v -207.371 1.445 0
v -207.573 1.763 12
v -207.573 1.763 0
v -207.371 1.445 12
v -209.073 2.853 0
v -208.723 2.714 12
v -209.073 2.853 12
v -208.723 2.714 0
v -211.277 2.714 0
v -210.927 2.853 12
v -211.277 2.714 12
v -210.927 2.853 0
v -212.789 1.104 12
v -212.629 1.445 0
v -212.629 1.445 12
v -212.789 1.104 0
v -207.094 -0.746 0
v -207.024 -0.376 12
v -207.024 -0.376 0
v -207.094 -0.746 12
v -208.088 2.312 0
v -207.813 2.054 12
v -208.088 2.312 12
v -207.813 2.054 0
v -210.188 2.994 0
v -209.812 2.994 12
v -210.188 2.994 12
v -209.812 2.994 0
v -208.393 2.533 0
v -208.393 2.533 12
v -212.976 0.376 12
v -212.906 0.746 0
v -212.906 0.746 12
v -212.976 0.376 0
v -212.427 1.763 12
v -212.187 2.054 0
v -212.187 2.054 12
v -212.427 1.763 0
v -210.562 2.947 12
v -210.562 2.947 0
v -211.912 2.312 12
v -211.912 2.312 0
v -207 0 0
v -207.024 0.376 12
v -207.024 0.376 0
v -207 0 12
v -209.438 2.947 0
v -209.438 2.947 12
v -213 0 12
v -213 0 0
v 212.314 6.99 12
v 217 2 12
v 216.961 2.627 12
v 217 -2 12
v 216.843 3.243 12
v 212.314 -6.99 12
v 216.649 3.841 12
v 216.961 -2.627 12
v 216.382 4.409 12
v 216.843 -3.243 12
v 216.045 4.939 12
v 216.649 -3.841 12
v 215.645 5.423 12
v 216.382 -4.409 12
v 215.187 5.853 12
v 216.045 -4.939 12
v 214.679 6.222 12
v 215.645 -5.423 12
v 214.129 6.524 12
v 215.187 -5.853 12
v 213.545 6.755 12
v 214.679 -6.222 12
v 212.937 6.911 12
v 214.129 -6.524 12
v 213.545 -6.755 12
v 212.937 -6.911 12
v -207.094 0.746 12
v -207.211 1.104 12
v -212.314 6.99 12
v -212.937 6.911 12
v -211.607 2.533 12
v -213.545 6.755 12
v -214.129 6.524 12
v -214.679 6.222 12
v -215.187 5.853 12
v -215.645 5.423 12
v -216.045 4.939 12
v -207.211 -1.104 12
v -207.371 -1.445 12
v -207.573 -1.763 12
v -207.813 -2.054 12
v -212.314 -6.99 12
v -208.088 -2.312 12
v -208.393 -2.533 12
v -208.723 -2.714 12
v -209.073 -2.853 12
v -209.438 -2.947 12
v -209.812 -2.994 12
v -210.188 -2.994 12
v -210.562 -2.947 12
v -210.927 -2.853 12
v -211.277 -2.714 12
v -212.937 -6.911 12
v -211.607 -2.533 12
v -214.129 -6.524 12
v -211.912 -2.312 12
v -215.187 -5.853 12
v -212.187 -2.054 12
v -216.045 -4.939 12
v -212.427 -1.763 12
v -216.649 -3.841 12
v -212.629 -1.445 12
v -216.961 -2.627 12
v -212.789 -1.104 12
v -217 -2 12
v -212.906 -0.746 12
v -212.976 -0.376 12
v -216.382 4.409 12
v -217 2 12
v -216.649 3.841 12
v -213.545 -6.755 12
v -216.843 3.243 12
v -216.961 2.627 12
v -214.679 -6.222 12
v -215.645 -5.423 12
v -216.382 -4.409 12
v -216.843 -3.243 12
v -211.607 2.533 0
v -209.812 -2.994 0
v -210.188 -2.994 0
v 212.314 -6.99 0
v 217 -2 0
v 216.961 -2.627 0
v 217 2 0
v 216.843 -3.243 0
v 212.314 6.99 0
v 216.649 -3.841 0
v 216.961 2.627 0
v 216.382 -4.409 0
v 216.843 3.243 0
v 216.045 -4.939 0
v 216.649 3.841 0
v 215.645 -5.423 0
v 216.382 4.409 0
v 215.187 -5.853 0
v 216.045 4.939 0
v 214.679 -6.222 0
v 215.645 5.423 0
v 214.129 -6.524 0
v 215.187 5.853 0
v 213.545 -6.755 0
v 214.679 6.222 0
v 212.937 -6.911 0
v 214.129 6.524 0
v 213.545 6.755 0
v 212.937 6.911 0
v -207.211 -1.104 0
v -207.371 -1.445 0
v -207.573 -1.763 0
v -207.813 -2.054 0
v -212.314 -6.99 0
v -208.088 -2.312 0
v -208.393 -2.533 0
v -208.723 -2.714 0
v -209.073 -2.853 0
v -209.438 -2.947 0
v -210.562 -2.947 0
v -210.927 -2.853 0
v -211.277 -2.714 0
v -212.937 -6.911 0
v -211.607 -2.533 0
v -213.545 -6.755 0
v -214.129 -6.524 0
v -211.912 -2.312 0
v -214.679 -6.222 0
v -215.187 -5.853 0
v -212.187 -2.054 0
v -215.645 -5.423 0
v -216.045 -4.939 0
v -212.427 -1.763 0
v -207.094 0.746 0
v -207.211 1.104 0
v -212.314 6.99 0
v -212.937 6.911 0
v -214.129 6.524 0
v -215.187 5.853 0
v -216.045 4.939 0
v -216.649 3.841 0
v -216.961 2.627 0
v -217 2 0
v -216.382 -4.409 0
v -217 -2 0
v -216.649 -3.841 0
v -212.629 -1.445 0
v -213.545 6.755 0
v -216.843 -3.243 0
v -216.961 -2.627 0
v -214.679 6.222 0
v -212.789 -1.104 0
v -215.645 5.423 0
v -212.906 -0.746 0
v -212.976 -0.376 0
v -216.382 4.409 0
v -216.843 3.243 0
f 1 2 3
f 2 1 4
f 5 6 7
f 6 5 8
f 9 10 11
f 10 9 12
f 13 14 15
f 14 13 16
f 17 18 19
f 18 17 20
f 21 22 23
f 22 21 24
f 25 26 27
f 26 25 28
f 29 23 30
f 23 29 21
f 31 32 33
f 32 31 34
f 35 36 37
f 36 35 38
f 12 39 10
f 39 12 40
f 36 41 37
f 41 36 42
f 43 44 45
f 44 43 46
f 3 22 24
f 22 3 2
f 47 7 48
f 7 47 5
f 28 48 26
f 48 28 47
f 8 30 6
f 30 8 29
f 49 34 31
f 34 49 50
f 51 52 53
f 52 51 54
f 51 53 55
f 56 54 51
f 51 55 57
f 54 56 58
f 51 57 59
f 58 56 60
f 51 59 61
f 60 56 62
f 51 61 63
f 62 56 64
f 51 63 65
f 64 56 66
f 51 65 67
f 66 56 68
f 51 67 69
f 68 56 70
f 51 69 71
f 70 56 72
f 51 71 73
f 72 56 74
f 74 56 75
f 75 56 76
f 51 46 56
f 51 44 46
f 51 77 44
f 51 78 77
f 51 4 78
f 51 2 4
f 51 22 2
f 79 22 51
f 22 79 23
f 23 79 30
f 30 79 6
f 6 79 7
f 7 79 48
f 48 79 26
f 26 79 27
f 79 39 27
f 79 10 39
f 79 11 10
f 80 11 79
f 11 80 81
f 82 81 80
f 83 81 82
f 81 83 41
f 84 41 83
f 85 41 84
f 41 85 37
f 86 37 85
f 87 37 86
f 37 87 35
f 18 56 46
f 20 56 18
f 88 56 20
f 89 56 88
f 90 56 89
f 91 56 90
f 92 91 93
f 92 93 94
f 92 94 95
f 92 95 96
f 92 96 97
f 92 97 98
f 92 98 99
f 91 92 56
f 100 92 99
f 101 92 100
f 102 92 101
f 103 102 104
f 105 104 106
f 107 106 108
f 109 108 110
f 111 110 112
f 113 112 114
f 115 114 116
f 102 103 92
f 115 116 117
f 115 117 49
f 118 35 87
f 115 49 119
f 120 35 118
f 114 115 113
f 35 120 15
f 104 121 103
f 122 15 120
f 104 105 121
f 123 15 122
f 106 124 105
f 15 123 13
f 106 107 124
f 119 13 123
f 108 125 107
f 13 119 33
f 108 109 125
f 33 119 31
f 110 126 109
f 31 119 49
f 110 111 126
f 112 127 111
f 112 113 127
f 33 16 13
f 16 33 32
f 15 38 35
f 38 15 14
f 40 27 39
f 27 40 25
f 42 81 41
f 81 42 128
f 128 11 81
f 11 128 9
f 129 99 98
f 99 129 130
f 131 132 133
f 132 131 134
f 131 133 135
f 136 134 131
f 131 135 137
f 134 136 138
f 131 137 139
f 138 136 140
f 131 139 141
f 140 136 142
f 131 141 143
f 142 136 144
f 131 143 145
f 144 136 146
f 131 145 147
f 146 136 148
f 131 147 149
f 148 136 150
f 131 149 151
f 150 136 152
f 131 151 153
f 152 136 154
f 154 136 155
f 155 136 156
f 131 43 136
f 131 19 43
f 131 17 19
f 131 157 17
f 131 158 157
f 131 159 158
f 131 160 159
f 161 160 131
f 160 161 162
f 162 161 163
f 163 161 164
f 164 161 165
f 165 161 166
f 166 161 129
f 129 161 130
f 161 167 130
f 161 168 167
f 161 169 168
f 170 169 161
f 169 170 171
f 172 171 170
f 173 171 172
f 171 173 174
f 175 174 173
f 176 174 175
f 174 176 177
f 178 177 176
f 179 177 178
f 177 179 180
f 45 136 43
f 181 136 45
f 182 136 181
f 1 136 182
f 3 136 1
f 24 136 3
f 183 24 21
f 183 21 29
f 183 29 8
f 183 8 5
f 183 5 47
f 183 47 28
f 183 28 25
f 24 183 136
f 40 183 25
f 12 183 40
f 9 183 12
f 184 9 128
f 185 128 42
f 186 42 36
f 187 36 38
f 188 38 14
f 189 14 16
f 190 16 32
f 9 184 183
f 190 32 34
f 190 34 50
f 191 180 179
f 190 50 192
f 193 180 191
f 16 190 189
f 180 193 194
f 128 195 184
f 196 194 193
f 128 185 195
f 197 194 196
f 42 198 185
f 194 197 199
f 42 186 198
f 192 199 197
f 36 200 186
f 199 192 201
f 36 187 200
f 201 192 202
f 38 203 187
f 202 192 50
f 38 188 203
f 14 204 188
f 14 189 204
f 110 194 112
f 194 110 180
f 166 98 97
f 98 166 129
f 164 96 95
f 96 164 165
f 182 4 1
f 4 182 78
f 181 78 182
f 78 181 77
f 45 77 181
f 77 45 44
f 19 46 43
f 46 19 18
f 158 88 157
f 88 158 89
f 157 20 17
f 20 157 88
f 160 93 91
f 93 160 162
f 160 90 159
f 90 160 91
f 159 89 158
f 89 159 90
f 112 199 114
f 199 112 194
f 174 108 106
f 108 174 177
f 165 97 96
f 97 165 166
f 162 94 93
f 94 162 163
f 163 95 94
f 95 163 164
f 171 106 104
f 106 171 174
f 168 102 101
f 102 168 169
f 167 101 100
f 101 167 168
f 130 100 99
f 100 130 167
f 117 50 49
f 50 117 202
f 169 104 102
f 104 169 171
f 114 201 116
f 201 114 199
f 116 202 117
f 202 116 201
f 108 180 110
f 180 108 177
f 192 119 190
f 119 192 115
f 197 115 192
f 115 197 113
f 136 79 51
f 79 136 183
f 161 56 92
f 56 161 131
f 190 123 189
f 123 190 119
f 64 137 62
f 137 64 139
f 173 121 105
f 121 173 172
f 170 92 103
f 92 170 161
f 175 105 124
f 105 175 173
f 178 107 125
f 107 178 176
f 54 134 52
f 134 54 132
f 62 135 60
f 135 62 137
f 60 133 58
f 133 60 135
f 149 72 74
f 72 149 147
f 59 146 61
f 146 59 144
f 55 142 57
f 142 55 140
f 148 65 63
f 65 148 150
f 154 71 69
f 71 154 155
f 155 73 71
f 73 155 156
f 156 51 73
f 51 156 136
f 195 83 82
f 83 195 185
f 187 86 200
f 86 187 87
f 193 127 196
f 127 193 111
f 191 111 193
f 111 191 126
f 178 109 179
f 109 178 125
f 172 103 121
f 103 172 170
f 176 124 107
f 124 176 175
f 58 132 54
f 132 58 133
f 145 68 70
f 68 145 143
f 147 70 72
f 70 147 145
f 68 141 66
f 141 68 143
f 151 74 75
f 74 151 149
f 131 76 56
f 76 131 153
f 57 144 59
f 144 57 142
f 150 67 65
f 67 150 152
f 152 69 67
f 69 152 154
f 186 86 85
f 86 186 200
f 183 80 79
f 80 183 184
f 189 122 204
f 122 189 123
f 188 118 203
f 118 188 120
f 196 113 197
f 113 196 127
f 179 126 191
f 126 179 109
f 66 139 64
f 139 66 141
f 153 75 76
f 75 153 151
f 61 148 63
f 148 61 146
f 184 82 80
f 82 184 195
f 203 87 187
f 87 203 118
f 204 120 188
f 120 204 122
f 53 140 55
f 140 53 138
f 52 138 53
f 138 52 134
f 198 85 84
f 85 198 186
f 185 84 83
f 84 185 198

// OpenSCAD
$fn = 50;


difference() {
	union() {
		hull() {
			translate(v = [-212.0000000000, 2.0000000000, 0]) {
				cylinder(h = 12, r = 5);
			}
			translate(v = [212.0000000000, 2.0000000000, 0]) {
				cylinder(h = 12, r = 5);
			}
			translate(v = [-212.0000000000, -2.0000000000, 0]) {
				cylinder(h = 12, r = 5);
			}
			translate(v = [212.0000000000, -2.0000000000, 0]) {
				cylinder(h = 12, r = 5);
			}
		}
	}
	union() {
		translate(v = [-210.0000000000, 0.0000000000, 0]) {
			cylinder(h = 12, r = 3.0000000000);
		}
		translate(v = [-210.0000000000, 0.0000000000, 0]) {
			cylinder(h = 12, r = 1.5000000000);
		}
		translate(v = [-210.0000000000, 0.0000000000, 0]) {
			cylinder(h = 12, r = 1.5000000000);
		}
		translate(v = [-210.0000000000, 0.0000000000, 0]) {
			cylinder(h = 12, r = 1.5000000000);
		}
	}
}
